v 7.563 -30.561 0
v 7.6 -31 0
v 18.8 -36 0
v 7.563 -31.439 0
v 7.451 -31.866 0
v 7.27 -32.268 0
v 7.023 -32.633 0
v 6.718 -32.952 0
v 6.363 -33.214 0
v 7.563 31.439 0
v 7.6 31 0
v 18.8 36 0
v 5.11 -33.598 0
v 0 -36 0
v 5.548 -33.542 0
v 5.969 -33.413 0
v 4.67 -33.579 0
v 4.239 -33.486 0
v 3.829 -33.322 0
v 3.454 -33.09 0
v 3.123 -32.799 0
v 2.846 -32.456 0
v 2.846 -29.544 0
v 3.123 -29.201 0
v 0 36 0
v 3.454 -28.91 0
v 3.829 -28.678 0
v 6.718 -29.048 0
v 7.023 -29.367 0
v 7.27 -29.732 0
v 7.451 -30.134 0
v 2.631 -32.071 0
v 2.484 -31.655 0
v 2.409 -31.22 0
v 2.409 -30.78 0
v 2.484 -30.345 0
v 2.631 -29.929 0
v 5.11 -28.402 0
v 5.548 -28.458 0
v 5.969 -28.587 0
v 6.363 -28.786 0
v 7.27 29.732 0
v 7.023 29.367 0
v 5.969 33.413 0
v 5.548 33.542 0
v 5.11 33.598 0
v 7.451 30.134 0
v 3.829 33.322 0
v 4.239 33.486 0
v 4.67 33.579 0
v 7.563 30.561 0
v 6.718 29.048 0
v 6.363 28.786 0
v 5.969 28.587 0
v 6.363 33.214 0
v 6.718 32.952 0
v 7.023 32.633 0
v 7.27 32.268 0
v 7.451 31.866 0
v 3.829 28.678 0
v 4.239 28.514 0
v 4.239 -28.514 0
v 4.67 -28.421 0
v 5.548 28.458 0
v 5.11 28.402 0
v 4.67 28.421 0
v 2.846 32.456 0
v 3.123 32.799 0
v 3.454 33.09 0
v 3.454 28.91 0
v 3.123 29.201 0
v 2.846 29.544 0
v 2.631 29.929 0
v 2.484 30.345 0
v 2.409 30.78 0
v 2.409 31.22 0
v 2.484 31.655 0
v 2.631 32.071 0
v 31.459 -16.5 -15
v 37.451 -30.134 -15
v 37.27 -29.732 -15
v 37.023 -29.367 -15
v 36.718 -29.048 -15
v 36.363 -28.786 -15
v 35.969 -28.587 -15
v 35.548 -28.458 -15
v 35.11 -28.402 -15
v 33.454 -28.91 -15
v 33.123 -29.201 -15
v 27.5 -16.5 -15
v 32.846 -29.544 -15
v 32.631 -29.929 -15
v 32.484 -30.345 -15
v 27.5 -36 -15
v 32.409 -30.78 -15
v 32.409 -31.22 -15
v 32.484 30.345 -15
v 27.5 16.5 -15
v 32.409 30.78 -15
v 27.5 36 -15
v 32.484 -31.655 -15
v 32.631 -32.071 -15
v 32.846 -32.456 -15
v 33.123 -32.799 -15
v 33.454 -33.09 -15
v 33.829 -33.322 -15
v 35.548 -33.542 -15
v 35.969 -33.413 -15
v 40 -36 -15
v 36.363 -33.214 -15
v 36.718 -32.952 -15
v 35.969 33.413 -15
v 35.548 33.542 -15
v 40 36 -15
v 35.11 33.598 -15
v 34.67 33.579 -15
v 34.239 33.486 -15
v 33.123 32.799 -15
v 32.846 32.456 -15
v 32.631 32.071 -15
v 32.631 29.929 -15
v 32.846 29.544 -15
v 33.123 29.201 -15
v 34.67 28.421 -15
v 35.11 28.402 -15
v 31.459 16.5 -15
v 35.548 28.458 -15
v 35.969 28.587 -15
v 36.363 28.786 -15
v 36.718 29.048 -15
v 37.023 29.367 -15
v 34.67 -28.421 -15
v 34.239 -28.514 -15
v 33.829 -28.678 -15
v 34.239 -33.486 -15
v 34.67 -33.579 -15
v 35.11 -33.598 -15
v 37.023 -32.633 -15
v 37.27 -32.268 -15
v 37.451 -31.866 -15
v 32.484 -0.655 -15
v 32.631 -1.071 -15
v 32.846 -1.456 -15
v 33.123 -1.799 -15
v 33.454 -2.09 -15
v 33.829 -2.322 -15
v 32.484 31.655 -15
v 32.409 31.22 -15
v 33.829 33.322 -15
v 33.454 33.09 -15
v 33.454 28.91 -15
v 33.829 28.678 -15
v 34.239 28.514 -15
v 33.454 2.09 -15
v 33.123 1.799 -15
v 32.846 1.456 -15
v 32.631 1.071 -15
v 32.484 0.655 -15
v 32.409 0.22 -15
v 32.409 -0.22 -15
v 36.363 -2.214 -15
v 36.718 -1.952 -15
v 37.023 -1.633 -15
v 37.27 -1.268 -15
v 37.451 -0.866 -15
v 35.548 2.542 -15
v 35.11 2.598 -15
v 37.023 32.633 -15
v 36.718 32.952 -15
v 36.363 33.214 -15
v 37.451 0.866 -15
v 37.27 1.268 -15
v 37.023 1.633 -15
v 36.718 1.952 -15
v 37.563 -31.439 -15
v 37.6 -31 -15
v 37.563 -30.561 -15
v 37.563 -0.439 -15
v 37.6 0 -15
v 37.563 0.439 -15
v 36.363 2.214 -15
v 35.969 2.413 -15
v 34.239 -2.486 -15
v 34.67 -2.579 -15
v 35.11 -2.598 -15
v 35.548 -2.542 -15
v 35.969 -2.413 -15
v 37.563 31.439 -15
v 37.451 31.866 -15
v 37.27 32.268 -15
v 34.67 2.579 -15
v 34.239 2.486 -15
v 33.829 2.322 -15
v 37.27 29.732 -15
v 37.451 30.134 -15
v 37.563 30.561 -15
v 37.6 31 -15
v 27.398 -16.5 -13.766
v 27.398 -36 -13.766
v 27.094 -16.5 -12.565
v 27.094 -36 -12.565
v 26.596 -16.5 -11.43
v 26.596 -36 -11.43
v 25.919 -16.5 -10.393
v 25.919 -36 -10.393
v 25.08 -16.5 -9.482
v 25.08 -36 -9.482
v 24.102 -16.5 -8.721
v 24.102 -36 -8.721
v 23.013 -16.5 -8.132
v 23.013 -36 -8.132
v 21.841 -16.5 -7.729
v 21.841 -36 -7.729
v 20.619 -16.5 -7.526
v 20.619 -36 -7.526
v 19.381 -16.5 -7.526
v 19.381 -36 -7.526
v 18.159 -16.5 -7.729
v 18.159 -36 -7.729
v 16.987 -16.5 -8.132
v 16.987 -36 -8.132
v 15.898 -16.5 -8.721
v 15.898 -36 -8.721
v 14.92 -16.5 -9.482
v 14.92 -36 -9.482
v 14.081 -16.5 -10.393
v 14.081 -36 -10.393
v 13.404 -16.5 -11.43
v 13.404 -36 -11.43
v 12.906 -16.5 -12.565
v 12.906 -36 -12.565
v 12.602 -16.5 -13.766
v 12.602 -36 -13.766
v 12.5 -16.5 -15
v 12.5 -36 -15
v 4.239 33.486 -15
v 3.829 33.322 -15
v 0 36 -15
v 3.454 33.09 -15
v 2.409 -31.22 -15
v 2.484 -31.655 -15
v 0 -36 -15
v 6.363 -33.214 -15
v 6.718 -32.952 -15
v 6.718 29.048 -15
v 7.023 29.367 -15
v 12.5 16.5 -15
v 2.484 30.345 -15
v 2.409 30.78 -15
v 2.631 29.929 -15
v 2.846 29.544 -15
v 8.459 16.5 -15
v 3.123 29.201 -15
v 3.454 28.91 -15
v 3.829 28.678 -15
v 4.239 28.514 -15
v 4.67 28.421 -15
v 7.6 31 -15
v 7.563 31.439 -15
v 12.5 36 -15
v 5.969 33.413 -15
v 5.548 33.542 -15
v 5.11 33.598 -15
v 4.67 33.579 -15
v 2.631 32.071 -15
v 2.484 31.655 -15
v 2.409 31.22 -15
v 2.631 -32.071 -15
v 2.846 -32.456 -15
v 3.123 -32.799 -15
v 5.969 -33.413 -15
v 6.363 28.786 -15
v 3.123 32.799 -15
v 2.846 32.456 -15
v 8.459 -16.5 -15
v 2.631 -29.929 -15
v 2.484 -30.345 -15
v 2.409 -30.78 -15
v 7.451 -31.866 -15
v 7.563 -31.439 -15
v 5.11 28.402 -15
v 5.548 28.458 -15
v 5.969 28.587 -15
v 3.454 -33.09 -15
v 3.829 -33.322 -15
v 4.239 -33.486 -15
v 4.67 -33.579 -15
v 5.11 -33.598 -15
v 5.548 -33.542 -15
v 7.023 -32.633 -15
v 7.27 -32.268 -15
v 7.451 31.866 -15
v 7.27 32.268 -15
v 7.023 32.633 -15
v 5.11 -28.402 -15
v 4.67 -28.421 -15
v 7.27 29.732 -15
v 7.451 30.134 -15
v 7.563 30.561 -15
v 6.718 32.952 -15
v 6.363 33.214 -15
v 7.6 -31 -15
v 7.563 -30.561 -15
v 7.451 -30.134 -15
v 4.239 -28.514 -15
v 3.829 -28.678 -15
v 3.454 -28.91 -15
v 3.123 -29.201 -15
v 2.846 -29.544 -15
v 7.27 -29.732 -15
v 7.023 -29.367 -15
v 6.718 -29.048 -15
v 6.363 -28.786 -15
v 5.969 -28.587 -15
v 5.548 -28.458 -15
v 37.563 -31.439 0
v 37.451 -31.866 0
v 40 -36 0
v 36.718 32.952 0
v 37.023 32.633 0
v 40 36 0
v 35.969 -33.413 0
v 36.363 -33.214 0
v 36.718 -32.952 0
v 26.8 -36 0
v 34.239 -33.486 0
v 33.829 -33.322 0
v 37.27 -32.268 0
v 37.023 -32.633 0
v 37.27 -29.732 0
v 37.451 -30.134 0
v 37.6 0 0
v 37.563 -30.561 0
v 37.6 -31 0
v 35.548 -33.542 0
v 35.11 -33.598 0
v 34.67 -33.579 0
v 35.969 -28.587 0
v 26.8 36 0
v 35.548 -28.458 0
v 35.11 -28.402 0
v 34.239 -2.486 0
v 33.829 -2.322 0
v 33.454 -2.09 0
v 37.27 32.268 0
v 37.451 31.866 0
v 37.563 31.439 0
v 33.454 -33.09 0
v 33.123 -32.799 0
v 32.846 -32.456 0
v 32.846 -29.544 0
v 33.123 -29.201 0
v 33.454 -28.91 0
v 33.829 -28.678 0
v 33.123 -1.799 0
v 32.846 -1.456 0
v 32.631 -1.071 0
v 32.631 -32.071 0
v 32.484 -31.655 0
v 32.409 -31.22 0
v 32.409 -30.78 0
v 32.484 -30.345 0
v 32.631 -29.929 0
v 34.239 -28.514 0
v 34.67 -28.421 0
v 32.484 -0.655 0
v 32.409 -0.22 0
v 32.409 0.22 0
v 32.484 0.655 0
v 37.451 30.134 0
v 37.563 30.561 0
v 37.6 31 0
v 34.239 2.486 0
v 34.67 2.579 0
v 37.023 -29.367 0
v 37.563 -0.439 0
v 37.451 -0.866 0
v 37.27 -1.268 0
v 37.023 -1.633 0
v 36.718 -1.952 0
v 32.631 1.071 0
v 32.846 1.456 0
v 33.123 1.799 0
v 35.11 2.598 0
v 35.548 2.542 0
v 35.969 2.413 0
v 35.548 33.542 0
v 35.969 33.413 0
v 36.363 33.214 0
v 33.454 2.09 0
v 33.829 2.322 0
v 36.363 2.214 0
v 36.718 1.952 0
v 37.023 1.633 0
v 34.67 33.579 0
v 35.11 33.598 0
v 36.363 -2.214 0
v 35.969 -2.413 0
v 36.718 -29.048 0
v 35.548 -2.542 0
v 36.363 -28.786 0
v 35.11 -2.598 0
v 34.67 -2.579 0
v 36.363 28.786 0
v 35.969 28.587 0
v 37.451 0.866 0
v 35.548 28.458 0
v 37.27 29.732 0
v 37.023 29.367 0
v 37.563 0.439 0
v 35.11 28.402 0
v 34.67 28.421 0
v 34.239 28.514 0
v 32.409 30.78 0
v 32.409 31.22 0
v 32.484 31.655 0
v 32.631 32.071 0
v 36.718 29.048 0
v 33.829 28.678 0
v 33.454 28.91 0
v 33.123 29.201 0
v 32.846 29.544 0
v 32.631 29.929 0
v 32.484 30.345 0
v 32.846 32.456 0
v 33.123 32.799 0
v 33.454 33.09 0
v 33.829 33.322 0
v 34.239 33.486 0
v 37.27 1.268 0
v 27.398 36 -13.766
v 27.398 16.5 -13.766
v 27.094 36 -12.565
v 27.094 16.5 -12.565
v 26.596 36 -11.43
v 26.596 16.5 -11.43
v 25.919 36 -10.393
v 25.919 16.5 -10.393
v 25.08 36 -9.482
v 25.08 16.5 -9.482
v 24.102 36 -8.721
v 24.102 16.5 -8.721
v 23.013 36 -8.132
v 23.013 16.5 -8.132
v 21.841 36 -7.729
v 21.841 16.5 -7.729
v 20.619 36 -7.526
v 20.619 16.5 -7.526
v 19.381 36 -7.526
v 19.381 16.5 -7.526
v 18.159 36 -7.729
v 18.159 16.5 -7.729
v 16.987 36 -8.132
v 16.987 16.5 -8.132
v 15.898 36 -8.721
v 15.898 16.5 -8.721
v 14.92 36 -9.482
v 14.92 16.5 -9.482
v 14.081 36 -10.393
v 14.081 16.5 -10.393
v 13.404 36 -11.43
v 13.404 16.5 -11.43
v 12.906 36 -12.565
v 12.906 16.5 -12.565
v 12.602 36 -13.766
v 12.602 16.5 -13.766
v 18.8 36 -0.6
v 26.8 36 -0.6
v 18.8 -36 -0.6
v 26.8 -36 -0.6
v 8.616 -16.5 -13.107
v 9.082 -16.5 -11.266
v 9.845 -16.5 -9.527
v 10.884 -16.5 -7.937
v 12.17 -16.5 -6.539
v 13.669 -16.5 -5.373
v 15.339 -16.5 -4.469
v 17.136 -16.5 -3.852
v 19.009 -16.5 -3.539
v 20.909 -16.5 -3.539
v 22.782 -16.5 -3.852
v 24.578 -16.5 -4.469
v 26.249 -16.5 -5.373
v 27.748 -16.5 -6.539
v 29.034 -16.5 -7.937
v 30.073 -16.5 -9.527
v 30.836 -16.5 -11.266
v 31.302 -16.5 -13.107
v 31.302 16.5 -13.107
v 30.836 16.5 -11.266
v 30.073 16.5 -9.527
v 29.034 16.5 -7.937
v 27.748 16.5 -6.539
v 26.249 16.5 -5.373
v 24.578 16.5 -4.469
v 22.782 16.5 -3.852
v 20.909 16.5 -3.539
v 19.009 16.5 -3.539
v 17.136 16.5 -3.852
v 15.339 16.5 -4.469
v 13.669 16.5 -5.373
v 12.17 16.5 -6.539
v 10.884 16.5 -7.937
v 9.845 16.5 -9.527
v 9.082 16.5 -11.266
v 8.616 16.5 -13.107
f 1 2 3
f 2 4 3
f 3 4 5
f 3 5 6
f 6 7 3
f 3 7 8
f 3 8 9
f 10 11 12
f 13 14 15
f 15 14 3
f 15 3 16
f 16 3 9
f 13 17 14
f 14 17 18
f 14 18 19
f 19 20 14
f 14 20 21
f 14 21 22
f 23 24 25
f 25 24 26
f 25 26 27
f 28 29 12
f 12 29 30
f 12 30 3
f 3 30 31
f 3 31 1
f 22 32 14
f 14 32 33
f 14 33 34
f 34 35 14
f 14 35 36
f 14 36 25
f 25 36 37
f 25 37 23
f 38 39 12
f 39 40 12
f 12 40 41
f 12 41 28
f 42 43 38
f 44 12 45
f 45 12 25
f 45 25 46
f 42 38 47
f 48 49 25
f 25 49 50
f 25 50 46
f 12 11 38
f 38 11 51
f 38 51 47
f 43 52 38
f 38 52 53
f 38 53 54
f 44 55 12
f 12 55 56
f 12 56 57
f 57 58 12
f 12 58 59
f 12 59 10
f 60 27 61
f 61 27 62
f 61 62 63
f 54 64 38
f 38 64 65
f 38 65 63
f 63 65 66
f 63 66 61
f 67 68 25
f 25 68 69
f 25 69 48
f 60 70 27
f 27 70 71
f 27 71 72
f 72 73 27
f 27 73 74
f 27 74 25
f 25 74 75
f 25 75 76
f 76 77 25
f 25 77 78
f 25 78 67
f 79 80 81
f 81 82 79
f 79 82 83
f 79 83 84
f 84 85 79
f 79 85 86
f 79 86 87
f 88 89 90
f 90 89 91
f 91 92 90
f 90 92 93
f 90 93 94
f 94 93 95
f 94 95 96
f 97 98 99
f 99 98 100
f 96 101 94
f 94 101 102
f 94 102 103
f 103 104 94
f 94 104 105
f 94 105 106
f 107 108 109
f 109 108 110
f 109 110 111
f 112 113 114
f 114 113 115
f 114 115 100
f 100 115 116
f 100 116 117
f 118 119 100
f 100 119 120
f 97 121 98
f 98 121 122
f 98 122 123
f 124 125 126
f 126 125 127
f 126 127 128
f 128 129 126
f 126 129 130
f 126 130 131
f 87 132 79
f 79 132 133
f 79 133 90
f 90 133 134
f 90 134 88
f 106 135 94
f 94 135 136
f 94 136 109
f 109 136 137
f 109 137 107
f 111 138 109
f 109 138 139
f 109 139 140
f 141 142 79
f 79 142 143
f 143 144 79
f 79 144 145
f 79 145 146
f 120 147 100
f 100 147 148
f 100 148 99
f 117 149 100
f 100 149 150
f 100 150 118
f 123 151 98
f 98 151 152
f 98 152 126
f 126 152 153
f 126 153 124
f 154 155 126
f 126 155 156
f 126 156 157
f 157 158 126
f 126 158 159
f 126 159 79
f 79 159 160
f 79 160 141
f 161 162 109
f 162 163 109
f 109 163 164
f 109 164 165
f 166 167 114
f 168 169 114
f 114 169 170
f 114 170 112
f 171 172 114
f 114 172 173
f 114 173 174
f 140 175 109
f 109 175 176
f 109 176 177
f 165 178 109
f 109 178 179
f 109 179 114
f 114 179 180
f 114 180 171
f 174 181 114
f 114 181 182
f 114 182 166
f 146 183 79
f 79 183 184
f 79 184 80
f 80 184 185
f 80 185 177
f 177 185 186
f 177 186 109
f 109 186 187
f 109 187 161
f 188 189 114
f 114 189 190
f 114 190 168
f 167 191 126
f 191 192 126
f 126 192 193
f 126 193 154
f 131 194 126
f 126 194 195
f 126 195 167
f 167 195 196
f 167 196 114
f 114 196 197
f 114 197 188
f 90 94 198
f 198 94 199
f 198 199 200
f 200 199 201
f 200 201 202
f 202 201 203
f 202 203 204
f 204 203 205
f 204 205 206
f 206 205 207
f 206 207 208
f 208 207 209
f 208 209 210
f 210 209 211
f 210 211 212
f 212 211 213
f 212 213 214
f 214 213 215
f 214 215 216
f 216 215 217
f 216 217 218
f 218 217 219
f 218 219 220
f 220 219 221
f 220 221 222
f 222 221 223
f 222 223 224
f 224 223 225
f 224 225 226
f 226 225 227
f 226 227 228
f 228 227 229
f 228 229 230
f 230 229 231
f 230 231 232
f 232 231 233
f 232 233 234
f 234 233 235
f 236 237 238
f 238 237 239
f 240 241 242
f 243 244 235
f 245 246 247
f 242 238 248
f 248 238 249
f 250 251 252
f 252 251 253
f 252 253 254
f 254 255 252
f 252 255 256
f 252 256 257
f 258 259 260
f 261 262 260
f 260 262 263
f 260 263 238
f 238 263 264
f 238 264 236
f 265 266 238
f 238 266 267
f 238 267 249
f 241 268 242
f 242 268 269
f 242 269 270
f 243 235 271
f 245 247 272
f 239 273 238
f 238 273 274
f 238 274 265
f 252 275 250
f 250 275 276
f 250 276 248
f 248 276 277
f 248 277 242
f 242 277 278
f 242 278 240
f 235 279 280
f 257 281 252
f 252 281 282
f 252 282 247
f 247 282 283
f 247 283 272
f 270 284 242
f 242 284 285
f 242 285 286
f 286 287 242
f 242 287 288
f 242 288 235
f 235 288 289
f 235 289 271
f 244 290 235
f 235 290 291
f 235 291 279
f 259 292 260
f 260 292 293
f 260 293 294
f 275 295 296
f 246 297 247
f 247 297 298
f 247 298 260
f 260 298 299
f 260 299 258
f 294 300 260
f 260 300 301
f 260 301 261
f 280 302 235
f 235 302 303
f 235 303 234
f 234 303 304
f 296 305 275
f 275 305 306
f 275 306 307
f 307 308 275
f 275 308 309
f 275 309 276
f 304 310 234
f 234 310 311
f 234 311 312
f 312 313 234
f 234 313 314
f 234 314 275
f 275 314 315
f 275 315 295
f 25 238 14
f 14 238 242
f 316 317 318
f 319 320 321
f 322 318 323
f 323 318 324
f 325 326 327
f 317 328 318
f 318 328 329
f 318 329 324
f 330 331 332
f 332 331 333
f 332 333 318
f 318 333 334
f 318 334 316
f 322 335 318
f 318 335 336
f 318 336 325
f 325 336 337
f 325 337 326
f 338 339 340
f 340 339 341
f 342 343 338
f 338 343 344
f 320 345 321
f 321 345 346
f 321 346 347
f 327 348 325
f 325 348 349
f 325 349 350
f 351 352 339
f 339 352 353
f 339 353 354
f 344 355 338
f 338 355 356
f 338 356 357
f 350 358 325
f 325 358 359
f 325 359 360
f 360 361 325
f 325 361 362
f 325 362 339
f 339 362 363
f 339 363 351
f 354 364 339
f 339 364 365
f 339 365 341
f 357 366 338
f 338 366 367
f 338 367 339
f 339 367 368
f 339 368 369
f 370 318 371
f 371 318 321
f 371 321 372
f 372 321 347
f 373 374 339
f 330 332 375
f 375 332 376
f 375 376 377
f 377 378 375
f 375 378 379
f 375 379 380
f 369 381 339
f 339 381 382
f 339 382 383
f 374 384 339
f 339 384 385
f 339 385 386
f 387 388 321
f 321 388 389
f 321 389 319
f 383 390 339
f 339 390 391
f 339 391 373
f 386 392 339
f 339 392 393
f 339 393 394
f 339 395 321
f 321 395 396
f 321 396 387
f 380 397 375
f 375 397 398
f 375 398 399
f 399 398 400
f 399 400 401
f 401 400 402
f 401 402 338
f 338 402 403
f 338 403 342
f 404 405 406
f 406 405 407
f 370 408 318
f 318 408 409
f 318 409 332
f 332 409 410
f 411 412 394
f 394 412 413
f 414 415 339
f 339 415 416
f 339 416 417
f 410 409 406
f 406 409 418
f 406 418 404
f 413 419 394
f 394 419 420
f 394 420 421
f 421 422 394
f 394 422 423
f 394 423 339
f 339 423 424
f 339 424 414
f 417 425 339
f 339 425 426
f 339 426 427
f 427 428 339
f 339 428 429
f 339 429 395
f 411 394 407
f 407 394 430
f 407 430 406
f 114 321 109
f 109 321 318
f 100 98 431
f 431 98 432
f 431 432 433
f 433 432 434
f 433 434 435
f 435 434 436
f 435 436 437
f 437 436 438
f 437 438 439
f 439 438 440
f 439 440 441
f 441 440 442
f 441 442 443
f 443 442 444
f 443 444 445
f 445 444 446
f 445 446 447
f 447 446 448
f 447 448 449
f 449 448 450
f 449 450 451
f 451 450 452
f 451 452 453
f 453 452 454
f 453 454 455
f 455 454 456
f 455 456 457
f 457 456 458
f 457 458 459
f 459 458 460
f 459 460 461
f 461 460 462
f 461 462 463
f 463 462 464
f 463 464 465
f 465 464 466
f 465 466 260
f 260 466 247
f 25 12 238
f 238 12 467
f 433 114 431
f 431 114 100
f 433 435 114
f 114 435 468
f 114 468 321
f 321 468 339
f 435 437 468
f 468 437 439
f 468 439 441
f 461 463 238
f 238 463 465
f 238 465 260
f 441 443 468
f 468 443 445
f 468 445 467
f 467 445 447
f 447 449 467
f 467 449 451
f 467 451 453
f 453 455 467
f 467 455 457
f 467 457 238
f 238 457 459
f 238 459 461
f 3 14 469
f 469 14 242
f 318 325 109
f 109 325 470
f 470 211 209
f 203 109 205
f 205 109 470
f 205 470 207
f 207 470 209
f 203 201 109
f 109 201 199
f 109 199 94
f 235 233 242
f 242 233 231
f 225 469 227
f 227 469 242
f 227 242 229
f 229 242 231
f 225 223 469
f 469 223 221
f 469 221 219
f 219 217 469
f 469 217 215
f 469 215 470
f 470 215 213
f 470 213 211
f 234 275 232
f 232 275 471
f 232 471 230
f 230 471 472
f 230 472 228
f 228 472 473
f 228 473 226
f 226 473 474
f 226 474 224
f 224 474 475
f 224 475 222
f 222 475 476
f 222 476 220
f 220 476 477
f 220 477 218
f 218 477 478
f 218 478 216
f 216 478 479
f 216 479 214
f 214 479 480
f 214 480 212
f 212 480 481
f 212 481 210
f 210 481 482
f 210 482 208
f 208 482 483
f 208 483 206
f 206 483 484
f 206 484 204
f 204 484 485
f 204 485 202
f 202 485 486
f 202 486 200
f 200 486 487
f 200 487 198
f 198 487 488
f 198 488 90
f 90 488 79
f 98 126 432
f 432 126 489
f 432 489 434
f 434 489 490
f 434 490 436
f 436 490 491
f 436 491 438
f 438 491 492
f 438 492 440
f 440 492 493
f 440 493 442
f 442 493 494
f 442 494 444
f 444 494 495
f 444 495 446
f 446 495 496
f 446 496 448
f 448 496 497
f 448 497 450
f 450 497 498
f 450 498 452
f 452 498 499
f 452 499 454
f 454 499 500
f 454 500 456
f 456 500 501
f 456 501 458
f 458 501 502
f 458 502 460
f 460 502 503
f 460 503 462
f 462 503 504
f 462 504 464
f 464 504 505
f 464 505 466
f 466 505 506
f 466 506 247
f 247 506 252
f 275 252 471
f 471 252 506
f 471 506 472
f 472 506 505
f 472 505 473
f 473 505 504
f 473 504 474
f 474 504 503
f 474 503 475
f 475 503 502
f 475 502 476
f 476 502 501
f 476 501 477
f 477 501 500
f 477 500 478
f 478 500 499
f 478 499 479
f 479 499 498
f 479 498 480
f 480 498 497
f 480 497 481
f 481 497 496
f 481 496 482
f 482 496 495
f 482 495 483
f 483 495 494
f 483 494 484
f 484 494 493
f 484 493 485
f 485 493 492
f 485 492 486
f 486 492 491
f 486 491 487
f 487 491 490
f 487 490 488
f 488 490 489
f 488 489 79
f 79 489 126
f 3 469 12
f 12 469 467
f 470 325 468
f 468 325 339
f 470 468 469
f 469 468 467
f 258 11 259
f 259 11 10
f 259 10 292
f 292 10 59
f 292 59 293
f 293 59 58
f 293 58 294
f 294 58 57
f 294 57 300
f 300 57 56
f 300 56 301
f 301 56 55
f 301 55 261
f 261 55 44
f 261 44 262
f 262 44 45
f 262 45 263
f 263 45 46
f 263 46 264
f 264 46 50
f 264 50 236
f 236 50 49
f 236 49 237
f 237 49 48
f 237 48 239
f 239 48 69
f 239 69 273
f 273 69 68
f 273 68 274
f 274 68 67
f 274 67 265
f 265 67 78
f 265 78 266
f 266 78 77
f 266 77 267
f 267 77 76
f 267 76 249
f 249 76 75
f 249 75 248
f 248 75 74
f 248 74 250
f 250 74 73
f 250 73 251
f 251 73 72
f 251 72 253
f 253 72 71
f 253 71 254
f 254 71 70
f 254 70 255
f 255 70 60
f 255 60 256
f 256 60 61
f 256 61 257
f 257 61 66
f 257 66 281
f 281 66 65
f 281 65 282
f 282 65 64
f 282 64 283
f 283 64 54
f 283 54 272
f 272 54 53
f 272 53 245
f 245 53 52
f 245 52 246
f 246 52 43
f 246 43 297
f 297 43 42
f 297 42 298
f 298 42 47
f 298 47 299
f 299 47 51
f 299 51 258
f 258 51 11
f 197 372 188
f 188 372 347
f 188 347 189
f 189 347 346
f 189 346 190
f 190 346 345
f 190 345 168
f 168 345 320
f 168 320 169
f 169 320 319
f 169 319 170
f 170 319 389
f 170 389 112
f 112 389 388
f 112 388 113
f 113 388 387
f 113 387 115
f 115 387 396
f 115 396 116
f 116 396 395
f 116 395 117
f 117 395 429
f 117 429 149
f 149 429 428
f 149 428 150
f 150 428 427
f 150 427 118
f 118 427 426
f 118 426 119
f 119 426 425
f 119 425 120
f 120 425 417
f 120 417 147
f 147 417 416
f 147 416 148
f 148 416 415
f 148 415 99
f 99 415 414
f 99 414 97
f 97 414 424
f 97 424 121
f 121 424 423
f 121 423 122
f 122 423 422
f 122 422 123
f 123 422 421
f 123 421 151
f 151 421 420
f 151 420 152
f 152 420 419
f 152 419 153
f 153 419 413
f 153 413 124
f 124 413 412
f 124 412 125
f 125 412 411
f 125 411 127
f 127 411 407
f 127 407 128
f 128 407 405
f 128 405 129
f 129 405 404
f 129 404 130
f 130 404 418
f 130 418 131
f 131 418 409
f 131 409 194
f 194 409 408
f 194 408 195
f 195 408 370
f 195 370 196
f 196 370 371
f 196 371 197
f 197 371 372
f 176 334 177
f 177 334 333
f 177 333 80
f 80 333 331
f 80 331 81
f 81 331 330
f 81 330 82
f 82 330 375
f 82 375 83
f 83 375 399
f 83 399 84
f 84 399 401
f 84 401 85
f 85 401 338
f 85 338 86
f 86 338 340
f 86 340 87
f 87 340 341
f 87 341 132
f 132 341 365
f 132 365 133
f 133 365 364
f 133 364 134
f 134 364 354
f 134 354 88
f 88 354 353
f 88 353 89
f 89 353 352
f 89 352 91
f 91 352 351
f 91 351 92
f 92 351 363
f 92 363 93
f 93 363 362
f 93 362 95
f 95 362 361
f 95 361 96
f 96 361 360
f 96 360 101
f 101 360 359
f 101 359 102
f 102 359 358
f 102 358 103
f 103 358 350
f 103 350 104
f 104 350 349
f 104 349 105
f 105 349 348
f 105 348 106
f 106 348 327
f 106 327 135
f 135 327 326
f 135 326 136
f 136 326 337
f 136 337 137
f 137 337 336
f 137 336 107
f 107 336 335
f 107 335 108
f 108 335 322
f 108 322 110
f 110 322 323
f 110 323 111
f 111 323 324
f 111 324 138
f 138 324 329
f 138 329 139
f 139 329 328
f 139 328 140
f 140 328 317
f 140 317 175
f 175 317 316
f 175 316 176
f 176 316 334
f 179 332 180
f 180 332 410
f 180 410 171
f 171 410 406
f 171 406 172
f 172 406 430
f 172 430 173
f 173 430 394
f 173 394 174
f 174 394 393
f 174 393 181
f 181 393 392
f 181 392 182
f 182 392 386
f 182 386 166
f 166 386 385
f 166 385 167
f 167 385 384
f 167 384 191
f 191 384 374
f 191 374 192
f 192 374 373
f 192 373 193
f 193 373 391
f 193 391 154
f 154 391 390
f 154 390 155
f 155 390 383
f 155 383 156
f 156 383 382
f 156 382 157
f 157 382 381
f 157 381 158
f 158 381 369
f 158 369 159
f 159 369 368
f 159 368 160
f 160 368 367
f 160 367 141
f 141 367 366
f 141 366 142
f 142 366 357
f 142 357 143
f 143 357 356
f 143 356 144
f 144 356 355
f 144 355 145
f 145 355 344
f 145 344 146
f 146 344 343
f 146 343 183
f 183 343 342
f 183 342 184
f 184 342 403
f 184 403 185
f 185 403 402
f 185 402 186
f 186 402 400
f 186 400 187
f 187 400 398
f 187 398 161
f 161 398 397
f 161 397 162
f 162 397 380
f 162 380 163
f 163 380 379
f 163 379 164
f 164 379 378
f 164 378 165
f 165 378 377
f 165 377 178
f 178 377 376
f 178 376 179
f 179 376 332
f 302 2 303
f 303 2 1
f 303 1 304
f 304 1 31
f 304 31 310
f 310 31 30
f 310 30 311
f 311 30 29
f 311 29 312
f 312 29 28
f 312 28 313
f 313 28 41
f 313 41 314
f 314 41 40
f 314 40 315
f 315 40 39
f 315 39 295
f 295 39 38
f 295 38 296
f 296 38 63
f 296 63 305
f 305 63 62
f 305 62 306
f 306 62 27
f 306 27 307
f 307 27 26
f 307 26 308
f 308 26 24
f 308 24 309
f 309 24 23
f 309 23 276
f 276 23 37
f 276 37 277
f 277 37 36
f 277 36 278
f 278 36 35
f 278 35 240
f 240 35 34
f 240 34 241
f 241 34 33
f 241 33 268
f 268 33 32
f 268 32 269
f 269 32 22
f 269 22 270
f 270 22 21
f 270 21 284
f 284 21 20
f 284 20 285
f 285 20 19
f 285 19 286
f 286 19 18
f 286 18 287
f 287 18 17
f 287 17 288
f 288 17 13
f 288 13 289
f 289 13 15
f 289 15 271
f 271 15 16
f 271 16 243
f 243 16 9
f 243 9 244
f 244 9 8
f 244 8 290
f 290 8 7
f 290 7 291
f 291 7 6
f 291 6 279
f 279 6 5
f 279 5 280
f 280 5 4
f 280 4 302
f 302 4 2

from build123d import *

# Parameters (mm, degrees)
BOSS_EXTRUDE1_DEPTH = 36
CUT_EXTRUDE1_DEPTH  = 16.5
SKETCH3_W           = 8
SKETCH3_H           = 77.131502371
CUT_EXTRUDE2_DEPTH  = 0.6
SKETCH4_R           = 2.6
CUT_EXTRUDE3_DEPTH  = 56.865910894


with BuildPart() as part:
    # Sketch1 → Boss-Extrude1 (new, symmetric)
    with BuildSketch(Plane(origin=(0, 0, 0), x_dir=(1, 0, 0), z_dir=(0, 1, 0))):
        with BuildLine():
            Line((27.5, 15), (40, 15))
            Line((40, 15), (40, 0))
            Line((40, 0), (0, 0))
            Line((0, 0), (0, 15))
            Line((0, 15), (12.5, 15))
            ThreePointArc((12.5, 15), (20, 7.5), (27.5, 15))
        make_face()
    extrude(amount=BOSS_EXTRUDE1_DEPTH, both=True)

    # Sketch2 → Cut-Extrude1 (cut, symmetric)
    with BuildSketch(Plane(origin=(0, 0, 0), x_dir=(1, 0, 0), z_dir=(0, 1, 0))):
        with BuildLine():
            Line((8.458861594, 15), (31.458861594, 15))
            ThreePointArc((31.458861594, 15), (19.958861594, 3.5), (8.458861594, 15))
        make_face()
    extrude(amount=CUT_EXTRUDE1_DEPTH, both=True, mode=Mode.SUBTRACT)

    # Sketch3 → Cut-Extrude2 (cut)
    with BuildSketch(Plane.XY):
        with Locations((22.8, -0.239836761)):
            Rectangle(SKETCH3_W, SKETCH3_H)
    extrude(amount=-CUT_EXTRUDE2_DEPTH, mode=Mode.SUBTRACT)

    # Sketch4 → Cut-Extrude3 (cut, through all)
    with BuildSketch(Plane.XY):
        with Locations((5, 31)):
            Circle(SKETCH4_R)
        with Locations((35, 31)):
            Circle(SKETCH4_R)
        with Locations((35, -31)):
            Circle(SKETCH4_R)
        with Locations((5, -31)):
            Circle(SKETCH4_R)
        with Locations((35, 0)):
            Circle(SKETCH4_R)
    extrude(amount=-CUT_EXTRUDE3_DEPTH, mode=Mode.SUBTRACT)


solid = part.part
